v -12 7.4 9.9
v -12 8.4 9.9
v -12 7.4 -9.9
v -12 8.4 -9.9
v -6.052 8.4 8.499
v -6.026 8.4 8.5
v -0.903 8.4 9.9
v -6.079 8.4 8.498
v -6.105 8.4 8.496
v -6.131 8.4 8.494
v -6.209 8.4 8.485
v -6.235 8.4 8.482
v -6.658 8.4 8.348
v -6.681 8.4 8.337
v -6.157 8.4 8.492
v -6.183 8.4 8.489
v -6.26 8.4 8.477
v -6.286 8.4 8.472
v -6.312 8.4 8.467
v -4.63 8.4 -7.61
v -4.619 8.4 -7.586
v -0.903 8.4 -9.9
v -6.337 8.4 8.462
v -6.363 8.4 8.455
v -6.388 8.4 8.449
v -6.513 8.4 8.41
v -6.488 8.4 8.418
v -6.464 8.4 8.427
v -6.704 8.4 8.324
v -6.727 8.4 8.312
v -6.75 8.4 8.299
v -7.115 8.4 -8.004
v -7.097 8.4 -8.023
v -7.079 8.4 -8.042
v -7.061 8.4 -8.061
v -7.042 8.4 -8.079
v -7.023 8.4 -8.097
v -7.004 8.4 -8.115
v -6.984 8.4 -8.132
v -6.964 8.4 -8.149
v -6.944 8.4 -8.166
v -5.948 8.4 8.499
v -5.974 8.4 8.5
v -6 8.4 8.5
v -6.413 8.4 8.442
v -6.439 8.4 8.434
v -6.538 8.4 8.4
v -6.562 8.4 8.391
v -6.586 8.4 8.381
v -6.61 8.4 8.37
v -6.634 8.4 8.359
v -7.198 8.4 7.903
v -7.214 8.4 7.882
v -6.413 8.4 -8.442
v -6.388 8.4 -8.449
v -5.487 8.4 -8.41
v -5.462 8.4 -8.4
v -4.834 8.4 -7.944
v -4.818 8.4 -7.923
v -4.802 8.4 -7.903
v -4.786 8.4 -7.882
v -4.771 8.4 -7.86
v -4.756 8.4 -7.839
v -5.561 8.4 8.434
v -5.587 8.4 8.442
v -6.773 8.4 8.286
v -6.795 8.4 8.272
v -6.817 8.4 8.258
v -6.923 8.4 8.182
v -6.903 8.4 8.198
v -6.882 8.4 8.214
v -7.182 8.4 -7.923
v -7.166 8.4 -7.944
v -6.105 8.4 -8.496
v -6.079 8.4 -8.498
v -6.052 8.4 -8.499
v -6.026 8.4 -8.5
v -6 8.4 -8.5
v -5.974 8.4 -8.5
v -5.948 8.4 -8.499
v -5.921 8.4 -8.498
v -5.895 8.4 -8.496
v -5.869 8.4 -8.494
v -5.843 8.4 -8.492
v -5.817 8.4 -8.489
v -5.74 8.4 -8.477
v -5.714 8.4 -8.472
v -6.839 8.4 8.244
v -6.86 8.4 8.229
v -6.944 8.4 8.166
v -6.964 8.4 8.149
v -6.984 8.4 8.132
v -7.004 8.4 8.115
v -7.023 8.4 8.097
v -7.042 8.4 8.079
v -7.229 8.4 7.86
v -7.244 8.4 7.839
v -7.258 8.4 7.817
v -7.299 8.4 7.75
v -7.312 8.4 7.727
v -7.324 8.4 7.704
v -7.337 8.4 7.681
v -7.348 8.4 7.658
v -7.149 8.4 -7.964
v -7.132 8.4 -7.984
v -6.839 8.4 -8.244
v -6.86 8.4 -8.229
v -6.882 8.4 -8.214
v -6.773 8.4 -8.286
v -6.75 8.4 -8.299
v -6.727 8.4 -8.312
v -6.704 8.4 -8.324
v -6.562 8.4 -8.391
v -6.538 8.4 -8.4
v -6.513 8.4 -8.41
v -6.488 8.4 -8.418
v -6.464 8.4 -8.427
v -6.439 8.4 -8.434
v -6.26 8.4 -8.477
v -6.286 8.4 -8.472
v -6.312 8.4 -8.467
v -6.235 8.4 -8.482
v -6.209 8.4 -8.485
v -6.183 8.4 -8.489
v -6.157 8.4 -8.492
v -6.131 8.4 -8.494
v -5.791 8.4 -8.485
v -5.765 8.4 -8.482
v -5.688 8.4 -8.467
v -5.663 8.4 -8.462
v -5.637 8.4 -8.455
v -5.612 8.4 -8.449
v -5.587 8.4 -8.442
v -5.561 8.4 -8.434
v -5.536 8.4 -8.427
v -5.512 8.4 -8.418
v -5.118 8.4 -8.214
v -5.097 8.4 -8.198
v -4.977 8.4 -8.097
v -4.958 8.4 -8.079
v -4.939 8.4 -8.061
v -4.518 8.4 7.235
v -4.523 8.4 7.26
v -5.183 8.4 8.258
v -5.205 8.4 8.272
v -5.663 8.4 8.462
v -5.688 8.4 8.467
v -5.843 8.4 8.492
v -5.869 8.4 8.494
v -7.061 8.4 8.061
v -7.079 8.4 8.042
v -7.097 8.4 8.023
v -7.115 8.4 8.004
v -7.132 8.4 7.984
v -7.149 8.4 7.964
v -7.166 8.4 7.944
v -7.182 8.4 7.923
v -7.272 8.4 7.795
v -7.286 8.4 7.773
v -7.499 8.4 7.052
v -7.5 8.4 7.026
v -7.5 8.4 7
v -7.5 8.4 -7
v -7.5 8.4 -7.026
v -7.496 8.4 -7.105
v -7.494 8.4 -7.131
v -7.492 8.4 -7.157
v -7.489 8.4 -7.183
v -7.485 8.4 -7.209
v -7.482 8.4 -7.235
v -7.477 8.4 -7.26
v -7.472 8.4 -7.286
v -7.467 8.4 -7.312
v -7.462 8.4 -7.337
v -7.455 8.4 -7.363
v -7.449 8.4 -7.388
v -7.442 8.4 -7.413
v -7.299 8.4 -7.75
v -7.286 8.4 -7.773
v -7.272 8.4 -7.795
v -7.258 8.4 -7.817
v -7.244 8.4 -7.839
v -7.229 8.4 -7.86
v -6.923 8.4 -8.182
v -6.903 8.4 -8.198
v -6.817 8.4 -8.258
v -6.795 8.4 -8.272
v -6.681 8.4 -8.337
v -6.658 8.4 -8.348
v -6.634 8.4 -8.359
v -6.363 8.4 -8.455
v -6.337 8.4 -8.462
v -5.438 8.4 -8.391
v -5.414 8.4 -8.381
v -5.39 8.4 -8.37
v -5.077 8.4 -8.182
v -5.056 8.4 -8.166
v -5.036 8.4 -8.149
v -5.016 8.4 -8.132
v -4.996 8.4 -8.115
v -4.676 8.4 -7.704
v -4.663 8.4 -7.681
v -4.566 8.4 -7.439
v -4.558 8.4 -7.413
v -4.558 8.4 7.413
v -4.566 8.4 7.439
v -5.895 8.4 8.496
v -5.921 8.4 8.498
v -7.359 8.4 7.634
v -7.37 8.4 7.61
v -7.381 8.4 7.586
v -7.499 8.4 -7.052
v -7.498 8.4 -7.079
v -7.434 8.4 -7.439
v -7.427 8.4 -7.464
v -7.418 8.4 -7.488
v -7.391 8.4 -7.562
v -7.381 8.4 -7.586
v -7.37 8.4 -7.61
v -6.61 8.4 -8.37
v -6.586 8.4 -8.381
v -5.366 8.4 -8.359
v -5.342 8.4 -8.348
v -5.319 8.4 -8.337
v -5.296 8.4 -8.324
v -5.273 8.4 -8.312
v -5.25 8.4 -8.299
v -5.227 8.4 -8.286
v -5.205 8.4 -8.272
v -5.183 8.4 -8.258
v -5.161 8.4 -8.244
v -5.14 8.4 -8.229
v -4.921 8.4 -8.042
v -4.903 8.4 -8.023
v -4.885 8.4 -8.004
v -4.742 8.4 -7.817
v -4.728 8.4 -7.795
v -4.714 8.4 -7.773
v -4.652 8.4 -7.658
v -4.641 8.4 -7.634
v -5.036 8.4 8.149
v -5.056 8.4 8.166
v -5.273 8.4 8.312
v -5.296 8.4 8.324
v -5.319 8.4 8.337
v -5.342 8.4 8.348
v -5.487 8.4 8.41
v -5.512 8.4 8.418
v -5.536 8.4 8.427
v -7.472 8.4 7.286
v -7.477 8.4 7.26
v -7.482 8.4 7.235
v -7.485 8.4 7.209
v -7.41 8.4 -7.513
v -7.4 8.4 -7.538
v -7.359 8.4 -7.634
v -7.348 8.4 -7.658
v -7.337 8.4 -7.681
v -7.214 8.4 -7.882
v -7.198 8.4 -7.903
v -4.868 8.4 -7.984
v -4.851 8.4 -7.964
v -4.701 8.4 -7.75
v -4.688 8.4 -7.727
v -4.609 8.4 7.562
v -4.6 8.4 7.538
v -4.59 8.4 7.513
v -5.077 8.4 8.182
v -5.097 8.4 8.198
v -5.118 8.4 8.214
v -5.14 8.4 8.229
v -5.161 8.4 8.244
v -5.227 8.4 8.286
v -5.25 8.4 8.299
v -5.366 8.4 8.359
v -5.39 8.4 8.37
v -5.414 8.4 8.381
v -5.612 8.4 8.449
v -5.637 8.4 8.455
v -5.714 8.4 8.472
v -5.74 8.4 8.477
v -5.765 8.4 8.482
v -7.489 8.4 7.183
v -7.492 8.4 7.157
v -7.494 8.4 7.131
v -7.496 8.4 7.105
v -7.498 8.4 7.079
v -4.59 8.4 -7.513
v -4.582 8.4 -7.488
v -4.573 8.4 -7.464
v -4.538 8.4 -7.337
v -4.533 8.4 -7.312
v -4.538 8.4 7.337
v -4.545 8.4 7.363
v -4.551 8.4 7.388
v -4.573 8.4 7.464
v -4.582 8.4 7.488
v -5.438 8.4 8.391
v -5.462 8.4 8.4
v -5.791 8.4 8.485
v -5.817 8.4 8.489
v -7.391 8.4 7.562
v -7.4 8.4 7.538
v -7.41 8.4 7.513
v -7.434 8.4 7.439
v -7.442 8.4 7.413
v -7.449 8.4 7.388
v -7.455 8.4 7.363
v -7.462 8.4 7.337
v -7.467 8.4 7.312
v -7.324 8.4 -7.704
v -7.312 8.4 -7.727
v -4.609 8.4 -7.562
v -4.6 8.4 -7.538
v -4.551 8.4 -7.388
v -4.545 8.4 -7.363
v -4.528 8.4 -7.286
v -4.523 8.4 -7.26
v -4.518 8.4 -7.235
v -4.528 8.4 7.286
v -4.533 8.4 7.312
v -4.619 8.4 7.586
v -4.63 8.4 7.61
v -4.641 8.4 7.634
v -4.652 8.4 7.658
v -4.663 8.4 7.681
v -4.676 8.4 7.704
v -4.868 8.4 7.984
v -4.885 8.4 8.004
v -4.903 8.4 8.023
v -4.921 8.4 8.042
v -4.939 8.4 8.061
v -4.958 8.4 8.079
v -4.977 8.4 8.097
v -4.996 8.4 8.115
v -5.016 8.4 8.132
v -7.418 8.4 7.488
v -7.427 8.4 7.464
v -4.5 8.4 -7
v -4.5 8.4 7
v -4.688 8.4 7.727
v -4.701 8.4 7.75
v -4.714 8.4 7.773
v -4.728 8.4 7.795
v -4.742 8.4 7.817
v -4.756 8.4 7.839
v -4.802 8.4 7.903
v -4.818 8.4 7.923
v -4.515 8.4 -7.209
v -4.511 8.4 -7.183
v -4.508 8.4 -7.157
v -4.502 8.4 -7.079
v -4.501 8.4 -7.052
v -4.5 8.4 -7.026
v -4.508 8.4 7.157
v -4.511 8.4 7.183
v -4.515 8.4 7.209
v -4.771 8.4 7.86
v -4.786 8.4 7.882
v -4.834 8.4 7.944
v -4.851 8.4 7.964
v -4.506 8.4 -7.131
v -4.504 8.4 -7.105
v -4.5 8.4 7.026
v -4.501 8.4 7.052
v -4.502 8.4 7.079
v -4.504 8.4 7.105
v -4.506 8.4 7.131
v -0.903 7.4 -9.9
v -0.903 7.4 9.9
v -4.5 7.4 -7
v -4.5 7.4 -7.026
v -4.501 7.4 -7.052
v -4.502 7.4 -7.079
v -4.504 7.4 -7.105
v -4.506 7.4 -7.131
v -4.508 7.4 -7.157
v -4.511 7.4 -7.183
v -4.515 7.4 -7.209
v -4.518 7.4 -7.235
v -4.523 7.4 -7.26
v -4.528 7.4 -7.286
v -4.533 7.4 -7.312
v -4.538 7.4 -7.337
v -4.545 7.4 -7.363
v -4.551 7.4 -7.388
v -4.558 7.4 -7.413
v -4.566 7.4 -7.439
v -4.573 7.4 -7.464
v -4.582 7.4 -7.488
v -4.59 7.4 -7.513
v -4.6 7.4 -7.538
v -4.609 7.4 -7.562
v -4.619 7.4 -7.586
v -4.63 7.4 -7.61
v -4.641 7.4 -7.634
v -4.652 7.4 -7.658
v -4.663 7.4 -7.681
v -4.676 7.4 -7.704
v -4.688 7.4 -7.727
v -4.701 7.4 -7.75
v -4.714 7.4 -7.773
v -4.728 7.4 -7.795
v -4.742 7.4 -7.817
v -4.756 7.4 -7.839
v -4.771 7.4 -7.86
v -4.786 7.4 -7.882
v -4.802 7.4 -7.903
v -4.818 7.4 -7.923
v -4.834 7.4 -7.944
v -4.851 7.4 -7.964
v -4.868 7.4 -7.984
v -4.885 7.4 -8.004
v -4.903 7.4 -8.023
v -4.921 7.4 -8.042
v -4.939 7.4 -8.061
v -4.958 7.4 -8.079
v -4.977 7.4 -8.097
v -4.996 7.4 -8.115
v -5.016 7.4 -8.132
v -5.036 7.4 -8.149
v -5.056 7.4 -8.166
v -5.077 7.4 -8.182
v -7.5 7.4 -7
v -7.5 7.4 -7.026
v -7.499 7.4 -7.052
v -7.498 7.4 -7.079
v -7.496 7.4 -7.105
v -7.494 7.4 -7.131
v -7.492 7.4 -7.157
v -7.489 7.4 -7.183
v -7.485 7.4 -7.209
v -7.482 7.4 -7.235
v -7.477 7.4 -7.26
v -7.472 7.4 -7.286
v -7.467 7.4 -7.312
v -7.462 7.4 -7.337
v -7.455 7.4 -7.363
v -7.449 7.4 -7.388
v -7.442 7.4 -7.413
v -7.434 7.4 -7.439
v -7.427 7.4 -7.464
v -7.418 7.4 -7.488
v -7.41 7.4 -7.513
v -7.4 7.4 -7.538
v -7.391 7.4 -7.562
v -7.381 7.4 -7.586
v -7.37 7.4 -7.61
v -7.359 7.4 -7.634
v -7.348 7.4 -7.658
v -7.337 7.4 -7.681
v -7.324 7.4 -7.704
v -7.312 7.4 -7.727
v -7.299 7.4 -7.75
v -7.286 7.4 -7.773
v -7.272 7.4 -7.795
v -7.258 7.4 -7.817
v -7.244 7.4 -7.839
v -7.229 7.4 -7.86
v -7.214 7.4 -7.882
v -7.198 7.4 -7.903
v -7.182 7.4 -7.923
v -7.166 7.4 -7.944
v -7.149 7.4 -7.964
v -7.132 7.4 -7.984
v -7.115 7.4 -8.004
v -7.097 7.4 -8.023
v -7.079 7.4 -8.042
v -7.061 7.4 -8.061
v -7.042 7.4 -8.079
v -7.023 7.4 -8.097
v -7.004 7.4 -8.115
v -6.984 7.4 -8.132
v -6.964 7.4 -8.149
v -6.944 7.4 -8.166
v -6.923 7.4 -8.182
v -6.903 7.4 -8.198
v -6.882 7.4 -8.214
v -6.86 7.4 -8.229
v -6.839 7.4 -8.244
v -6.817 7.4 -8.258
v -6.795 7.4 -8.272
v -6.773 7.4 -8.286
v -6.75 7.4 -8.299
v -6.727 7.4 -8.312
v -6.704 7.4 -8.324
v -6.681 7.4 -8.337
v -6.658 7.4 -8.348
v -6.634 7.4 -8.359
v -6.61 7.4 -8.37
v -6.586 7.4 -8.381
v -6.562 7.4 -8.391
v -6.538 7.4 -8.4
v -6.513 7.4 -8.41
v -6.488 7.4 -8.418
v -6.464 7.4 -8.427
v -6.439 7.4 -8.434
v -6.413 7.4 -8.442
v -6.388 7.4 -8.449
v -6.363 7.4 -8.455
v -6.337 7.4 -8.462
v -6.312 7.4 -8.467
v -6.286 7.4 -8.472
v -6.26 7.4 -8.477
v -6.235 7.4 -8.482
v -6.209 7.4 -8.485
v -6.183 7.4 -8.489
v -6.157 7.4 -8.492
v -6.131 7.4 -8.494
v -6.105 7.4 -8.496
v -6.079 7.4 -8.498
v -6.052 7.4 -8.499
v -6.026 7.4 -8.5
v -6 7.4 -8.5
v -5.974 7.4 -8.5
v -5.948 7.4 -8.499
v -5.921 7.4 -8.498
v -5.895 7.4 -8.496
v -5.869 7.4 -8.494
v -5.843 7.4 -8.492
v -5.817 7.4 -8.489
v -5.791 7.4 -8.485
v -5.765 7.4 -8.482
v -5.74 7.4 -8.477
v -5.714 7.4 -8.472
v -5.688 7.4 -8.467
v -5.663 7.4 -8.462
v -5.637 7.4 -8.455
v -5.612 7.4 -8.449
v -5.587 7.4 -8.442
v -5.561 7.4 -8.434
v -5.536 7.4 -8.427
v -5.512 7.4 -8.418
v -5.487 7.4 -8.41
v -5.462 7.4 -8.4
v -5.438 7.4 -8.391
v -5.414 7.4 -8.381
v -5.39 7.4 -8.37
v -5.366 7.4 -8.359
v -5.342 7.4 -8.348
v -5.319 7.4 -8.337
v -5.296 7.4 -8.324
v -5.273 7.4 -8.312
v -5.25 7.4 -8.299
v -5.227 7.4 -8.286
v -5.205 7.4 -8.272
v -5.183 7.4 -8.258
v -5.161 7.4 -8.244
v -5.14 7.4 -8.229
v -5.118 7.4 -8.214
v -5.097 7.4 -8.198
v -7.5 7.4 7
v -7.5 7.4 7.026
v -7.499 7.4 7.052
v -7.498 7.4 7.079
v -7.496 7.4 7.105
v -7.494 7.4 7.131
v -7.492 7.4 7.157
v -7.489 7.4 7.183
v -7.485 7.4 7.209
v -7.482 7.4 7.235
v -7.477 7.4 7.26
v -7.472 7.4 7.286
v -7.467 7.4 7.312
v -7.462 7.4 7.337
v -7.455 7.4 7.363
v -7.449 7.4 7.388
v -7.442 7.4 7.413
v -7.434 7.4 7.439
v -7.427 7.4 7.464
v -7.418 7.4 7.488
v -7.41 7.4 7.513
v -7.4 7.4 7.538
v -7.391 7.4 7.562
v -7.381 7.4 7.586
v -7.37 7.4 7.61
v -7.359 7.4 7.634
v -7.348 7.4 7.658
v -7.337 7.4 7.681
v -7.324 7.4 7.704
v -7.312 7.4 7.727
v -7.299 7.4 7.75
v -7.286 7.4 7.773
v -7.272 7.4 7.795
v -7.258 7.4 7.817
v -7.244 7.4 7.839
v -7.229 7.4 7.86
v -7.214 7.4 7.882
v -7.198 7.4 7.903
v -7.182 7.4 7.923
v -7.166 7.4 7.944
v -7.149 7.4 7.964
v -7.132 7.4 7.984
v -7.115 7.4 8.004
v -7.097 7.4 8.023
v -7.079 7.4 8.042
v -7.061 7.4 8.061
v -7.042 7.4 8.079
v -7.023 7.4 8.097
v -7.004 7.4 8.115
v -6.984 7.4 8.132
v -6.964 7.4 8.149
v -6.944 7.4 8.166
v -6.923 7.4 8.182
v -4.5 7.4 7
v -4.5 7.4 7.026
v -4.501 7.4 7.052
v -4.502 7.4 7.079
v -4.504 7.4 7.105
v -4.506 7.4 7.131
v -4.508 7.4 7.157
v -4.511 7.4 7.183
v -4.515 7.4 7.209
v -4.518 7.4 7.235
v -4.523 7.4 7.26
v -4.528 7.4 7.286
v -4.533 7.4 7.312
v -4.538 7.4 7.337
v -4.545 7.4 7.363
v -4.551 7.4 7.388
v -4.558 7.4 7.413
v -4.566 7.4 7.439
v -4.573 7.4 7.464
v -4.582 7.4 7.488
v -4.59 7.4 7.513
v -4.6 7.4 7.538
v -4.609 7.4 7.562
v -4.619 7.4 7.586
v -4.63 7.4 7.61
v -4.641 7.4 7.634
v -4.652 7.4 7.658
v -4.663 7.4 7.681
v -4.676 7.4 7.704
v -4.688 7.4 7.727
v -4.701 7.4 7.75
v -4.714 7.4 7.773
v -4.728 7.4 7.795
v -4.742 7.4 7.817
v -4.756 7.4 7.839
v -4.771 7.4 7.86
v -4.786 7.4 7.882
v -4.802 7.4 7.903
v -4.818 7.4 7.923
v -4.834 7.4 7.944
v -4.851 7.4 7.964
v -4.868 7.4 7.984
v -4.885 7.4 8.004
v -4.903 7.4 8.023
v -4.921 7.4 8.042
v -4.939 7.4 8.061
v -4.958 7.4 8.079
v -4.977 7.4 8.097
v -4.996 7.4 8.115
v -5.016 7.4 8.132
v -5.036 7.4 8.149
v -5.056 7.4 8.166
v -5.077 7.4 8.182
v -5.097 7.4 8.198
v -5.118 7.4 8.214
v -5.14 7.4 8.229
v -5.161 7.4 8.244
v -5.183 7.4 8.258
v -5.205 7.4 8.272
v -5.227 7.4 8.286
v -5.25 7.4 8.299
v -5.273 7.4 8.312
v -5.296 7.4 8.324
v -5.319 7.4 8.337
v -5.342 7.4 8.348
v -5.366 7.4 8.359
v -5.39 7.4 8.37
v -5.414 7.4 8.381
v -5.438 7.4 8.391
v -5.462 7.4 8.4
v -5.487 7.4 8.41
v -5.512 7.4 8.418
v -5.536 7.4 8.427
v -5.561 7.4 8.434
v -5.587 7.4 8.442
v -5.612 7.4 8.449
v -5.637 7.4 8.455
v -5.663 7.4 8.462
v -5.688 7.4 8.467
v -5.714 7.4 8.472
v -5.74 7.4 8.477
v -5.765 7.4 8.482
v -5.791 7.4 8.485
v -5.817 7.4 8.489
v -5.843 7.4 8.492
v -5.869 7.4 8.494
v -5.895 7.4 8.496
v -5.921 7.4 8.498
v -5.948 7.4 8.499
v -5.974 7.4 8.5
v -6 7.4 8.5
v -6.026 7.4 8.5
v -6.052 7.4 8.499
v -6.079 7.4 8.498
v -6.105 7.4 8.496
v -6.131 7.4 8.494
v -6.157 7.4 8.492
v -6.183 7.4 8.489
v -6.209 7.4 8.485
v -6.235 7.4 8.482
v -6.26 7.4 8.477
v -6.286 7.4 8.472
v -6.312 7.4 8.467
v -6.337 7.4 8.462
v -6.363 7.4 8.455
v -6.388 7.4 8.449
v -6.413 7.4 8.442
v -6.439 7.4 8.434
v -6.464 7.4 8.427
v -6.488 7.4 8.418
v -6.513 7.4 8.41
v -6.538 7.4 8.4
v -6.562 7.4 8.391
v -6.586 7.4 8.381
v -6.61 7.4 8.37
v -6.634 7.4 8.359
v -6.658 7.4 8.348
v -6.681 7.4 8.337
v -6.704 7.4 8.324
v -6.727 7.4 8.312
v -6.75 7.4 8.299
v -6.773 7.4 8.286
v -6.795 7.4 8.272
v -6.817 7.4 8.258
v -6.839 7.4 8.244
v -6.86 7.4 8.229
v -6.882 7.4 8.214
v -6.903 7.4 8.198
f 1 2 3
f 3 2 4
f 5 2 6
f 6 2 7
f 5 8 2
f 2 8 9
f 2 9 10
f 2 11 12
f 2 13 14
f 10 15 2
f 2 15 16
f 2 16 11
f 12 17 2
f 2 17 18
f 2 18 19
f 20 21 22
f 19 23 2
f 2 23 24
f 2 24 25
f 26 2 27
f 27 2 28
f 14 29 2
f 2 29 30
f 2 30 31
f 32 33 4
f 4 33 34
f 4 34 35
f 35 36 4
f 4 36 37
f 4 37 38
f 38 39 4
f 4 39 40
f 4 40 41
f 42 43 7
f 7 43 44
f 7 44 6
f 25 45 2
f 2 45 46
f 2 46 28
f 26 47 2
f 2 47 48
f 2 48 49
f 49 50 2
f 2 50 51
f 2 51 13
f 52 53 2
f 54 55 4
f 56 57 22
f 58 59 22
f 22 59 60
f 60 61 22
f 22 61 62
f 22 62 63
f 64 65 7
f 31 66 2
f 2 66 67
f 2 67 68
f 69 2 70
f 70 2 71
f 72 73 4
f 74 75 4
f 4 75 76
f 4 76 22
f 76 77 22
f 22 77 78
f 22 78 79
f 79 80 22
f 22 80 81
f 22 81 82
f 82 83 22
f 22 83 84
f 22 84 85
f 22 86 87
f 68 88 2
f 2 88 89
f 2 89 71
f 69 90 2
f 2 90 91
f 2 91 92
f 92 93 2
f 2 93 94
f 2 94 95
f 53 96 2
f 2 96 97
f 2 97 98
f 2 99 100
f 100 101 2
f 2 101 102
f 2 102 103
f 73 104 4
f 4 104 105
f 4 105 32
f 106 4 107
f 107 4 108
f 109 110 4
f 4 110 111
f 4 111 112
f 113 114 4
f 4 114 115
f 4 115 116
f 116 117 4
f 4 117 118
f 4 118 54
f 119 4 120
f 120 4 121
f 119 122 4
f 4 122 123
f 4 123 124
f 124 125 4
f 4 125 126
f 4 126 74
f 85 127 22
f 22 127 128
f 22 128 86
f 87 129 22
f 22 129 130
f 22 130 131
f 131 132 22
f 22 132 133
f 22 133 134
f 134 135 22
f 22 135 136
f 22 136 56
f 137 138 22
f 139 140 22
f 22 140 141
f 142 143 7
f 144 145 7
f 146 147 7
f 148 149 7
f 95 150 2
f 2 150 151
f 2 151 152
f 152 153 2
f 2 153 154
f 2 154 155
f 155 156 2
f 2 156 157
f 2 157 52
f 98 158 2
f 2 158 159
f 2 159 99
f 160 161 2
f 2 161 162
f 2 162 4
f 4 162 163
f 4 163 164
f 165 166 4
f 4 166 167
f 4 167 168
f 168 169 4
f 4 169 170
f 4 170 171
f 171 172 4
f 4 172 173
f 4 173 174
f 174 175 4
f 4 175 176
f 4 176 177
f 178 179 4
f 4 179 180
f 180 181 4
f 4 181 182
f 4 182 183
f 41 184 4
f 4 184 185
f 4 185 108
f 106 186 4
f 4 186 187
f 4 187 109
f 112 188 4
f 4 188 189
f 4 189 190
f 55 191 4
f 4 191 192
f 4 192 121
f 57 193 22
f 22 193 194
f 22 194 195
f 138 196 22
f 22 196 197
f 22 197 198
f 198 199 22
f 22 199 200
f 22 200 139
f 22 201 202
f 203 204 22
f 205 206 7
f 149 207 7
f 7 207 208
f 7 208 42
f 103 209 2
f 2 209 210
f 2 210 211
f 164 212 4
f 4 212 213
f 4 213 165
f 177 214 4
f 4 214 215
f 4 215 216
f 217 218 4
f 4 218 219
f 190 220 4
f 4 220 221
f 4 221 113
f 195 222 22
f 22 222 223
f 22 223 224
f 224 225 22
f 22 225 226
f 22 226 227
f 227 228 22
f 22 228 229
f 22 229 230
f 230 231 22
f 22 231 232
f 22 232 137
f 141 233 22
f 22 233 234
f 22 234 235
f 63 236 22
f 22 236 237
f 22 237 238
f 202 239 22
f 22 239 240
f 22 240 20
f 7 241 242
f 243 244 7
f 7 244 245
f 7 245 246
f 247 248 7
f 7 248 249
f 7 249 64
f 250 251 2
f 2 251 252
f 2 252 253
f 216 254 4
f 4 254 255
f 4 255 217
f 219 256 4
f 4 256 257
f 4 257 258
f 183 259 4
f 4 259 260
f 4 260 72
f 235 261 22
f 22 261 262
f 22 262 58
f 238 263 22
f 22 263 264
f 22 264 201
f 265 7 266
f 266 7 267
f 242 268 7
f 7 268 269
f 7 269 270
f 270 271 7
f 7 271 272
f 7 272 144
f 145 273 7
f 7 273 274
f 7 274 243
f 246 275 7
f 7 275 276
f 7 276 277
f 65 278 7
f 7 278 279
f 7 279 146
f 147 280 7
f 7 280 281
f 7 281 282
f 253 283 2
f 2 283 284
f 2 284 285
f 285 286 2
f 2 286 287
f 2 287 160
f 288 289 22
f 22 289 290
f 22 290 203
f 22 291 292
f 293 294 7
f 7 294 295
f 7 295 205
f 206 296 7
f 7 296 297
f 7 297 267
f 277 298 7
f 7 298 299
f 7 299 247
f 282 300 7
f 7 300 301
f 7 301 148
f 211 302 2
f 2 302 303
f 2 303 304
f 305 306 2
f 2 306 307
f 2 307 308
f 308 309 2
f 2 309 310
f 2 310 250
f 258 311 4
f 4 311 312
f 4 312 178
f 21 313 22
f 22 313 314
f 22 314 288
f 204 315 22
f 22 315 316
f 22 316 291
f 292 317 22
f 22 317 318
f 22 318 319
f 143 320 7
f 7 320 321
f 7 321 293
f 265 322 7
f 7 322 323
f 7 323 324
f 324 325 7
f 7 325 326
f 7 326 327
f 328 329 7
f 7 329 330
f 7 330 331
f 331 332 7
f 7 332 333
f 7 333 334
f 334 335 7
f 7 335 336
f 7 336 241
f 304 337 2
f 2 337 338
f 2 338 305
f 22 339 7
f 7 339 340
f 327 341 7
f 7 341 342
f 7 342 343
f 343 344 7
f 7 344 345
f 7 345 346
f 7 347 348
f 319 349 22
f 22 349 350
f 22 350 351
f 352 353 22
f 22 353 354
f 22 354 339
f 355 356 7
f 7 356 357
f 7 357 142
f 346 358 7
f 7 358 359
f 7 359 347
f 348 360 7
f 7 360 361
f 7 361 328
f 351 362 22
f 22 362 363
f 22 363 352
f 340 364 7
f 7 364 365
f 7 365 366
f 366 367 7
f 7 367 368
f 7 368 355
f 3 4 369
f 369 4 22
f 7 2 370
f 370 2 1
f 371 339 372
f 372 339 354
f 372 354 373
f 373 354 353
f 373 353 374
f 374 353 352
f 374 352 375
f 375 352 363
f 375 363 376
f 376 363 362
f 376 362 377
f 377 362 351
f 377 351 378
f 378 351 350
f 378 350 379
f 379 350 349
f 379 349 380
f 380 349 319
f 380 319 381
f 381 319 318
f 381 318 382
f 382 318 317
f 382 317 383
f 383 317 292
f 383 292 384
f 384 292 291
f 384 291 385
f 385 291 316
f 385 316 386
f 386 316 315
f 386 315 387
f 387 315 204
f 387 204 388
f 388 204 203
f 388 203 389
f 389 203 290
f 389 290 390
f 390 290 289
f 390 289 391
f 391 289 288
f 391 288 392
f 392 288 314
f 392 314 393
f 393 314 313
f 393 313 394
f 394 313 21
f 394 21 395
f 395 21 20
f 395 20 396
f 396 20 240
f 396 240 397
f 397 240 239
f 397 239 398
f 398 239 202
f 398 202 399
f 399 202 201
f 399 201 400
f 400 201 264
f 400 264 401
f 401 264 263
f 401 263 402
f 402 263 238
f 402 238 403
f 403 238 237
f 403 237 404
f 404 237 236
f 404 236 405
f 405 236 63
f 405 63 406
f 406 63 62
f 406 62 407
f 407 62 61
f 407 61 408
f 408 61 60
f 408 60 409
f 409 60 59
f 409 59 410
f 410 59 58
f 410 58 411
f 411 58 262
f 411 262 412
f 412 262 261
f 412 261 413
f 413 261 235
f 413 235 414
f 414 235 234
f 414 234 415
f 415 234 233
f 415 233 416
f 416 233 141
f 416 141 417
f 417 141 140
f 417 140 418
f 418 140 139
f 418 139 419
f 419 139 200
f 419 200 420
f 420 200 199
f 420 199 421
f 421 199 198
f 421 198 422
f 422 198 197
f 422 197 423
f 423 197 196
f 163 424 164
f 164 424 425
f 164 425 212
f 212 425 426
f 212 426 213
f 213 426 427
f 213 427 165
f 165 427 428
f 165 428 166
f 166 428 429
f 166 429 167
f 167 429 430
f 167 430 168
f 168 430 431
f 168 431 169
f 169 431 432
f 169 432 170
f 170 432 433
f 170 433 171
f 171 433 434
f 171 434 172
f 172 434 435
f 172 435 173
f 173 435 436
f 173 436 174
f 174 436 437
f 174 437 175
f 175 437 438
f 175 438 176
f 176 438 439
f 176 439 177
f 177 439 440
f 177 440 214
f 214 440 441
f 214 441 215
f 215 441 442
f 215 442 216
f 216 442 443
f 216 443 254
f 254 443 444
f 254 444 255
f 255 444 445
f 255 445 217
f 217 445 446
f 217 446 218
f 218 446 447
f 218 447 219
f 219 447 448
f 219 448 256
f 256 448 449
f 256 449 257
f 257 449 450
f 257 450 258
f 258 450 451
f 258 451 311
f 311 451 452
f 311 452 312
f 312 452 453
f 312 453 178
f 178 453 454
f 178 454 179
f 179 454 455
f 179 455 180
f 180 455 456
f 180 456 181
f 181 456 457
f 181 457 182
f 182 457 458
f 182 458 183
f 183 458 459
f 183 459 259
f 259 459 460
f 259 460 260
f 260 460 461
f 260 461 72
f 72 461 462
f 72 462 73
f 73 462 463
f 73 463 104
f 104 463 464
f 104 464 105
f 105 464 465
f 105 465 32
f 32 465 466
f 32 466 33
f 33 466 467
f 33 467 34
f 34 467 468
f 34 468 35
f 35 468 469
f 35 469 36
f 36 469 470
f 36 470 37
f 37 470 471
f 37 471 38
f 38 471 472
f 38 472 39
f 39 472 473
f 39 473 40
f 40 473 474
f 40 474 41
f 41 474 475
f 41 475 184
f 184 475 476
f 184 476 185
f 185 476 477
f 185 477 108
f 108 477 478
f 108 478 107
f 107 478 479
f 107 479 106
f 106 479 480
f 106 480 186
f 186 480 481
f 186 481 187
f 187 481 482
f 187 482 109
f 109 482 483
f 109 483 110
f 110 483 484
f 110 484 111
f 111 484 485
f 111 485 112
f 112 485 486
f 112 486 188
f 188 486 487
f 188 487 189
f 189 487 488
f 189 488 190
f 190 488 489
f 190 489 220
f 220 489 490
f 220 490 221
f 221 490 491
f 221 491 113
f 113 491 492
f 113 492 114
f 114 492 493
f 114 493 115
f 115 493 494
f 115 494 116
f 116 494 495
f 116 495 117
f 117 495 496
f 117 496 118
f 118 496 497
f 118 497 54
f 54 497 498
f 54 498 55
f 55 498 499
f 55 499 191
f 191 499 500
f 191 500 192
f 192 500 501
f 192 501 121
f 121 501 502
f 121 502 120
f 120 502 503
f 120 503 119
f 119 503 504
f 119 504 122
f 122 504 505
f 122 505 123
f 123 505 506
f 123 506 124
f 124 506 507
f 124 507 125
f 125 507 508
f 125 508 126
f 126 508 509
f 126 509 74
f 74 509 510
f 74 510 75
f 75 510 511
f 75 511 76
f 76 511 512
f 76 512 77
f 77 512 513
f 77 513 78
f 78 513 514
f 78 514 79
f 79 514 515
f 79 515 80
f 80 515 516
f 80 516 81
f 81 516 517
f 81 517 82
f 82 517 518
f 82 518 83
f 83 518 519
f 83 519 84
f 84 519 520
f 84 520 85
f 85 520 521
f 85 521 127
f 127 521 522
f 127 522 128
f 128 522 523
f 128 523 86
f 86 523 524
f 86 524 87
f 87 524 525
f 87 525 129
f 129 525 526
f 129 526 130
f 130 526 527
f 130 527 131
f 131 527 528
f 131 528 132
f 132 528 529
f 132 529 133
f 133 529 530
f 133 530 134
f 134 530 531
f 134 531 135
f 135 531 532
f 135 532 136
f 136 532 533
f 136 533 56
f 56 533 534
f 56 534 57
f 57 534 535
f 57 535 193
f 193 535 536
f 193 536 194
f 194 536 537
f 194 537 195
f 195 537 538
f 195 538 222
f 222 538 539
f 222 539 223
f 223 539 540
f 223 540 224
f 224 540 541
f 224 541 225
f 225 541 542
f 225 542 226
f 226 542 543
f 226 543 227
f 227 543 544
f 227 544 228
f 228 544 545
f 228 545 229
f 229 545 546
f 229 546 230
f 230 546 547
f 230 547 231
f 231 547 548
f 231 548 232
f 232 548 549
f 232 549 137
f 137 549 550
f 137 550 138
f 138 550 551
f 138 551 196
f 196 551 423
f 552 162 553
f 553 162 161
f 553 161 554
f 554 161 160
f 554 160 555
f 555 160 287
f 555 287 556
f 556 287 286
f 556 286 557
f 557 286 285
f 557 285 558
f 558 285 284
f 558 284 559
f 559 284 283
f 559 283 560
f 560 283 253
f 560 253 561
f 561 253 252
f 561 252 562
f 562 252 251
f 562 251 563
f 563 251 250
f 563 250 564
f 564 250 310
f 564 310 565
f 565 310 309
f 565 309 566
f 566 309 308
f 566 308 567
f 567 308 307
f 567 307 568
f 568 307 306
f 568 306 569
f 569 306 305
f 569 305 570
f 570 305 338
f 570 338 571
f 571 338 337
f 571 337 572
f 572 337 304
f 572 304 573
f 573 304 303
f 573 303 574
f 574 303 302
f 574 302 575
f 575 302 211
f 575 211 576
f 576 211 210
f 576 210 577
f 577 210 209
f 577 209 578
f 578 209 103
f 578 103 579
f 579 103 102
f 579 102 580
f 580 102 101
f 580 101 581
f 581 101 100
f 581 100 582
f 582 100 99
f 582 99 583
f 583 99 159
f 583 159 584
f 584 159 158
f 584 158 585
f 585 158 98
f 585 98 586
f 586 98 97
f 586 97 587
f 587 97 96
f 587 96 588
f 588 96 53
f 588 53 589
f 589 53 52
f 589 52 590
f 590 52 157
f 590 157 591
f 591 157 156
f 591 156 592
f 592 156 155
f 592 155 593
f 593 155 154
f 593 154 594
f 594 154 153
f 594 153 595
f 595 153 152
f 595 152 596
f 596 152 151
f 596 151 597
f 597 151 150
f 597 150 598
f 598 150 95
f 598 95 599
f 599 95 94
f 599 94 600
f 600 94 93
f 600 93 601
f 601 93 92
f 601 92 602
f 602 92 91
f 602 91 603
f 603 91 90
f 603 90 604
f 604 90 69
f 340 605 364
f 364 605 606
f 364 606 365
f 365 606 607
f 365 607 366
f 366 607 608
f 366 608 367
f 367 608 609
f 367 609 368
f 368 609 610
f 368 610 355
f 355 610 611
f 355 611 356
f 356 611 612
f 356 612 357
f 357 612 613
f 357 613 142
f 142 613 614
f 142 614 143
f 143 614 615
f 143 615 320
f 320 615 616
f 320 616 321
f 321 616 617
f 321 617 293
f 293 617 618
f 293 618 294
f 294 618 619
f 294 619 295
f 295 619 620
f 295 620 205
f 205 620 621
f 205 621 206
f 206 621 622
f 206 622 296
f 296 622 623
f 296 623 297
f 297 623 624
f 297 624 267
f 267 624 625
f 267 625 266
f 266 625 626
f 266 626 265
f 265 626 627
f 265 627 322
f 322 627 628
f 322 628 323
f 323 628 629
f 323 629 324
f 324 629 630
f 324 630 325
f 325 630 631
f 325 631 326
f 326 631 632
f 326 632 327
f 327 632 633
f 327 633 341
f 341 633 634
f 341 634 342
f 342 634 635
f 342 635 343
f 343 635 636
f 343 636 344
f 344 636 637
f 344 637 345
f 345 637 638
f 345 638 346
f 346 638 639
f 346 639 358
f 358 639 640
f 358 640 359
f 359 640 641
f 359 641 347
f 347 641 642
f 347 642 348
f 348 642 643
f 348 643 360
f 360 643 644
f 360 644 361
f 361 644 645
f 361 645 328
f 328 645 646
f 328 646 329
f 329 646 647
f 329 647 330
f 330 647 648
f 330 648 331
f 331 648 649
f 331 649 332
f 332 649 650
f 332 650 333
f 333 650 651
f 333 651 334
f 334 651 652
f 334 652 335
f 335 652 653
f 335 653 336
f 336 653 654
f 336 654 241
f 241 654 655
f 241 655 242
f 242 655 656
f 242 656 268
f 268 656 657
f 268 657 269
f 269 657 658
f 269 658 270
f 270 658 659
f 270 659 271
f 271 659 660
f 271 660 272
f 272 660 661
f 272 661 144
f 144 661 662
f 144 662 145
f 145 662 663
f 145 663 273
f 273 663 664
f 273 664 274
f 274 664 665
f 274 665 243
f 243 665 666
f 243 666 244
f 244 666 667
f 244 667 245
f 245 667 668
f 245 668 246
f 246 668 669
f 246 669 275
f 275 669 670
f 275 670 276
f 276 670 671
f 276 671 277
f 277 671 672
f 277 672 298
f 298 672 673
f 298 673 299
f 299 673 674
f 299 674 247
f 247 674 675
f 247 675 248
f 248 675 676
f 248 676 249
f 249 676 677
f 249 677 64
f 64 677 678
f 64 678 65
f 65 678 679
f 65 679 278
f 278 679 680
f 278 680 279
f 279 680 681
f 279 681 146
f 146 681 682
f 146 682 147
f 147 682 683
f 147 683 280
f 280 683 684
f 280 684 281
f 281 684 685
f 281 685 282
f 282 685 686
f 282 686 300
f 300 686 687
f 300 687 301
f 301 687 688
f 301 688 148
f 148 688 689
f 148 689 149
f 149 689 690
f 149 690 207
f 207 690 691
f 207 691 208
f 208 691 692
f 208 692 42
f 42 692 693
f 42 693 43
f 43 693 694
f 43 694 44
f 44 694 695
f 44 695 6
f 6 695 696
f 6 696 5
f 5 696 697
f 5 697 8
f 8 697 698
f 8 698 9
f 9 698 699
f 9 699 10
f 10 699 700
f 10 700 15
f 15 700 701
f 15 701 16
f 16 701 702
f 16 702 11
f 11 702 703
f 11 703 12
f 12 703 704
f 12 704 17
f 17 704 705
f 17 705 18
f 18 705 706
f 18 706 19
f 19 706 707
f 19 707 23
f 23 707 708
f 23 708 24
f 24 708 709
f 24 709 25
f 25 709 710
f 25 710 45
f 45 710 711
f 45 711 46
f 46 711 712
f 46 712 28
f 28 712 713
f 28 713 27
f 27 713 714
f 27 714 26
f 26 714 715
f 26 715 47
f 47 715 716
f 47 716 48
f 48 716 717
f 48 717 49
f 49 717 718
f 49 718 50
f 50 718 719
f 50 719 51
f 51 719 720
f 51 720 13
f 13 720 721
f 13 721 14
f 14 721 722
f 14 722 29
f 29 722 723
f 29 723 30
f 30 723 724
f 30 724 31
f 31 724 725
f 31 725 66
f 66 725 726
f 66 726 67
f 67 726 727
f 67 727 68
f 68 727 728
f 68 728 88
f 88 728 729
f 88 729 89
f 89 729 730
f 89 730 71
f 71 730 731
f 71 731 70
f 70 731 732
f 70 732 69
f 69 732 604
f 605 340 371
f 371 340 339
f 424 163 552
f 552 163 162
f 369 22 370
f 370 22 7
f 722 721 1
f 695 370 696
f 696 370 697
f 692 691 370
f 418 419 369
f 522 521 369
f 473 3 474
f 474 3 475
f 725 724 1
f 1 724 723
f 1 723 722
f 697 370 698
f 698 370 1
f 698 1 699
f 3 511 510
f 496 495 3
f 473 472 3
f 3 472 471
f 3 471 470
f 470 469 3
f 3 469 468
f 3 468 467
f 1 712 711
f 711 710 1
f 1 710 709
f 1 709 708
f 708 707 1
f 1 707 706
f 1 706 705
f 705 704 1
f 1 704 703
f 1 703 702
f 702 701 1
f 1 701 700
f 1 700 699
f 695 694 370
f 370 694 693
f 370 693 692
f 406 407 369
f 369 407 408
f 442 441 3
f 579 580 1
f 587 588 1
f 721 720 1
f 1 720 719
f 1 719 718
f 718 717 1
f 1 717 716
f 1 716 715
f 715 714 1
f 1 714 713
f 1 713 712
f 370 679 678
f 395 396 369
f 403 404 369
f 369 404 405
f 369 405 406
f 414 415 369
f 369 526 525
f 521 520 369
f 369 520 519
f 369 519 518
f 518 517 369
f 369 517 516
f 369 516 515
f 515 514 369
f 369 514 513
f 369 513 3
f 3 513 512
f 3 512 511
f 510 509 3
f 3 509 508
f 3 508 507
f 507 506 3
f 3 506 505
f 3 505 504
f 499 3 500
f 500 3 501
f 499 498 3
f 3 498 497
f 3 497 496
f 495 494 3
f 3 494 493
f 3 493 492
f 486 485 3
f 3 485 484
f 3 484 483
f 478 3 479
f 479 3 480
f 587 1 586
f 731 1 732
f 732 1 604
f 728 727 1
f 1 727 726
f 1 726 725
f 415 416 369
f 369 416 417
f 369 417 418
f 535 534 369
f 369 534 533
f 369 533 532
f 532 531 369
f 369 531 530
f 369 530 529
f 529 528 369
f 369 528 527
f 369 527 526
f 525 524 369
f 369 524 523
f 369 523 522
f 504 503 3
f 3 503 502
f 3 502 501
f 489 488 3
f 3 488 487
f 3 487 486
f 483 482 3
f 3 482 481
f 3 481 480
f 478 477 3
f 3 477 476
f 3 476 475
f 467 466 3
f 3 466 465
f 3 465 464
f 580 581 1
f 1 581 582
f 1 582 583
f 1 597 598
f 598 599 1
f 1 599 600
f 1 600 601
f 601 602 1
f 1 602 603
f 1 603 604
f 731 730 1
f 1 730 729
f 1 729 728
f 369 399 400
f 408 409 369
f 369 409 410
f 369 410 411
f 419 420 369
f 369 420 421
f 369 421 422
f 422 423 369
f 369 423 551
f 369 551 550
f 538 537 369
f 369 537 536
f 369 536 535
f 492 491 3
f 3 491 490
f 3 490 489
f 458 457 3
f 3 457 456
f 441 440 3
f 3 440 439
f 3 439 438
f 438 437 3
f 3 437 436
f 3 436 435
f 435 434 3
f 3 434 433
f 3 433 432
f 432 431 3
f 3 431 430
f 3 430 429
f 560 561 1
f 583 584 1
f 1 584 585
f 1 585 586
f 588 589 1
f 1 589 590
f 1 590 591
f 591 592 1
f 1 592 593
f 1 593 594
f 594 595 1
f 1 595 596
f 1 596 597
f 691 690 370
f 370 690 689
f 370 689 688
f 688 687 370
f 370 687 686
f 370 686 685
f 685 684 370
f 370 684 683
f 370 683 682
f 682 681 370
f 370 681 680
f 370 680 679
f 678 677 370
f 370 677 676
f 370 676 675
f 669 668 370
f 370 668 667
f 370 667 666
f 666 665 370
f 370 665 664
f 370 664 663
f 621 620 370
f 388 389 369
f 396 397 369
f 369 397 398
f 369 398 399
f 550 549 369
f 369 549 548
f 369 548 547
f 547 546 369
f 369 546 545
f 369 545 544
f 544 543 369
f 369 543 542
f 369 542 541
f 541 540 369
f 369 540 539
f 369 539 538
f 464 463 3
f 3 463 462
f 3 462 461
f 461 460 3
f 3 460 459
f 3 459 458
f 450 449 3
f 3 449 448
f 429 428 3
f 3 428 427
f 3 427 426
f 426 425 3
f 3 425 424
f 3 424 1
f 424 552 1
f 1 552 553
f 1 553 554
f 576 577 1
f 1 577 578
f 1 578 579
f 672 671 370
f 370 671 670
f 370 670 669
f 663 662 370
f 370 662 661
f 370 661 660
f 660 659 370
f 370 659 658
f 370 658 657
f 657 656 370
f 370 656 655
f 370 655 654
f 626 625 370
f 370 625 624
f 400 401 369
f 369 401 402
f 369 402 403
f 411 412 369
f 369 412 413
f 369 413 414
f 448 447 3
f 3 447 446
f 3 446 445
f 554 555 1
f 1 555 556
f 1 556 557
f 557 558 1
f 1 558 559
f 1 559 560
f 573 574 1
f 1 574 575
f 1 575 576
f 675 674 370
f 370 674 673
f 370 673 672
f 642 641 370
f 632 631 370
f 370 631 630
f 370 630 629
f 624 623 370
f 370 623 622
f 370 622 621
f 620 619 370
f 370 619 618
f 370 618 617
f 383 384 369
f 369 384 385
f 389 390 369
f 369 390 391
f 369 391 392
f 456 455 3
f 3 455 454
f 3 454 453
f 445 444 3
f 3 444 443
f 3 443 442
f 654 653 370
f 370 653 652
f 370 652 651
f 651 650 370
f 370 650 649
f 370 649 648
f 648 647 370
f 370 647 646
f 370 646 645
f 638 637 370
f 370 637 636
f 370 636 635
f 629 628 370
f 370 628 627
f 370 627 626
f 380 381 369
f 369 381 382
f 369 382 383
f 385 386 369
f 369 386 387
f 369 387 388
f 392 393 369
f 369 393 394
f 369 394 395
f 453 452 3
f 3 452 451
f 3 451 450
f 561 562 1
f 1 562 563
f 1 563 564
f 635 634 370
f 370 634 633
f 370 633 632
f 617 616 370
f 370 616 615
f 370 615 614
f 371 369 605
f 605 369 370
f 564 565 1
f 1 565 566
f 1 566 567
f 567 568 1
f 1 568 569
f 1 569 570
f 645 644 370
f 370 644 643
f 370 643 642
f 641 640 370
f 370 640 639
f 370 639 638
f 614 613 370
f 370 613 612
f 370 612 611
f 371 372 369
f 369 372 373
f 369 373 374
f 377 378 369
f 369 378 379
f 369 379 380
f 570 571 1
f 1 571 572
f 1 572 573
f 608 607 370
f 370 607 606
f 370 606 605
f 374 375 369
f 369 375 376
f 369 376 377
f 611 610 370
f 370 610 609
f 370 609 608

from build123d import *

# Parameters (mm, degrees)
SKETCH1_W               = 13.8
SKETCH1_H               = 8.8
BOSS_EXTRUDE1_DEPTH     = 3
SKETCH2_W               = 2
SKETCH2_H               = 35
BOSS_EXTRUDE2_DEPTH     = 3
SKETCH3_W               = 1.2
SKETCH3_H               = 6
BOSS_EXTRUDE3_DEPTH     = 7
FILLET3_R               = 10
SKETCH5_W               = 15
SKETCH5_H               = 13.8
BOSS_EXTRUDE4_DEPTH     = 4
SKETCH6_R               = 1.5
CUT_EXTRUDE4_DEPTH      = 38.968539608
BOSS_EXTRUDE5_DEPTH     = 2
CHAMFER2_SIZE           = 3
BOSS_EXTRUDE7_DEPTH     = 1.2
SKETCH12_W              = 15
SKETCH12_H              = 4
BOSS_EXTRUDE8_DEPTH     = 3
SKETCH13_W              = 15
SKETCH13_H              = 4
BOSS_EXTRUDE9_DEPTH     = 3
CUT_EXTRUDE7_DEPTH      = 43.28486727
CUT_EXTRUDE7_DEPTH_BACK = 43.28486727
CUT_EXTRUDE8_DEPTH      = 43.28486727
CUT_EXTRUDE8_DEPTH_BACK = 43.28486727
SKETCH15_W              = 0.807911756
SKETCH15_H              = 0.64
CUT_EXTRUDE9_DEPTH      = 41.244591358
CUT_EXTRUDE9_DEPTH_BACK = 41.244591358
SKETCH16_W              = 0.64
SKETCH16_H              = 0.6
CHAMFER3_SIZE           = 1
SKETCH18_W              = 20.701942652
SKETCH18_H              = 41.728044518
CUT_EXTRUDE10_DEPTH     = 36
SKETCH19_W              = 11.097134513
SKETCH19_H              = 20.928514419
CUT_EXTRUDE11_DEPTH     = 3


# Some blends are built 0.0001 mm under size
with BuildPart() as part:
    # Sketch1 → Boss-Extrude1 (new body)
    with BuildSketch(Plane(origin=(0, 0, 0), x_dir=(0, 0, -1), z_dir=(1, 0, 0))):
        Rectangle(SKETCH1_W, SKETCH1_H)
    extrude(amount=BOSS_EXTRUDE1_DEPTH)

    # Sketch2 → Boss-Extrude2 (add)
    with BuildSketch(Plane(origin=(3, 0, 0), x_dir=(0, 0, -1), z_dir=(1, 0, 0))):
        with Locations((0, -13.1)):
            Rectangle(SKETCH2_W, SKETCH2_H)
    extrude(amount=BOSS_EXTRUDE2_DEPTH)

    # Sketch3 → Boss-Extrude3 (add)
    with BuildSketch(Plane(origin=(6, 0, 0), x_dir=(0, 0, -1), z_dir=(1, 0, 0))):
        with Locations((0, -27.6)):
            Rectangle(SKETCH3_W, SKETCH3_H)
    extrude(amount=BOSS_EXTRUDE3_DEPTH)

    # Fillet3
    # the kernel refuses this fillet: 10 mm, written as the material it adds along each edge
    with BuildSketch(Plane(origin=(3, -4.4, 1), x_dir=(-1, 0, 0), z_dir=(0, 0, -1))) as fillet3_piece_1:
        with BuildLine():
            CenterArc((10, -7.141428429), FILLET3_R, 134.427004001, 45.572995999)
            Line((0, -7.141428429), (0, 0))
            Line((0, 0), (3, 0))
        make_face()
    extrude(amount=2)

    # Sketch5 → Boss-Extrude4 (add)
    with BuildSketch(Plane(origin=(0, 4.4, 0), x_dir=(1, 0, 0), z_dir=(0, 1, 0))):
        with Locations((-4.5, 0)):
            Rectangle(SKETCH5_W, SKETCH5_H)
    extrude(amount=BOSS_EXTRUDE4_DEPTH)

    # Sketch6 → Cut-Extrude4 (cut, through all)
    with BuildSketch(Plane.XZ.offset(-4.4)):
        with Locations(Location((-6, 3, 0), (0, 0, 270))):
            Circle(SKETCH6_R)
        with Locations(Location((-6, -3, 0), (0, 0, 270))):
            Circle(SKETCH6_R)
    extrude(amount=-CUT_EXTRUDE4_DEPTH, mode=Mode.SUBTRACT)

    # Sketch8 → Boss-Extrude5 (add)
    with BuildSketch(Plane(origin=(0, 0, -1), x_dir=(-1, 0, 0), z_dir=(0, 0, -1))):
        Polygon((-3, -18.758153574), (0, -4.4), (-3, -4.4), align=None)
    extrude(amount=-BOSS_EXTRUDE5_DEPTH)

    # Chamfer2
    chamfer2_edges = [part.edges().sort_by_distance(p)[0] for p in [
        (3, 4.4, 0),
    ]]
    chamfer(chamfer2_edges, length=CHAMFER2_SIZE - 0.0001)  # a hair under: the kernel refuses the full size

    # Sketch11 → Boss-Extrude7 (add)
    with BuildSketch(Plane(origin=(0, 0, -0.6), x_dir=(-1, 0, 0), z_dir=(0, 0, -1))):
        Polygon((-6, -24.6), (-13, -24.6), (-6, 1.742521041), align=None)
    extrude(amount=-BOSS_EXTRUDE7_DEPTH)

    # Sketch12 → Boss-Extrude8 (add)
    with BuildSketch(Plane(origin=(0, 0, -6.9), x_dir=(-1, 0, 0), z_dir=(0, 0, -1))):
        with Locations((4.5, 6.4)):
            Rectangle(SKETCH12_W, SKETCH12_H)
    extrude(amount=BOSS_EXTRUDE8_DEPTH)

    # Sketch13 → Boss-Extrude9 (add)
    with BuildSketch(Plane.XY.offset(6.9)):
        with Locations((-4.5, 6.4)):
            Rectangle(SKETCH13_W, SKETCH13_H)
    extrude(amount=BOSS_EXTRUDE9_DEPTH)

    # Sketch14 → Cut-Extrude7 (cut, two sides: drawn at the far end of the back side and taken through both)
    with BuildSketch(Plane(origin=(0, 8.4, 0), x_dir=(1, 0, 0), z_dir=(0, 1, 0)).offset(-CUT_EXTRUDE7_DEPTH_BACK)):
        with BuildLine():
            Line((-7.5, 7), (-7.5, -7))
            ThreePointArc((-7.5, -7), (-6, -8.5), (-4.5, -7))
            Line((-4.5, -7), (-4.5, 7))
            ThreePointArc((-4.5, 7), (-6, 8.5), (-7.5, 7))
        make_face()
    extrude(amount=CUT_EXTRUDE7_DEPTH + CUT_EXTRUDE7_DEPTH_BACK, mode=Mode.SUBTRACT)

    # Sketch15 → Cut-Extrude8 (cut, two sides: drawn at the far end of the back side and taken through both)
    with BuildSketch(Plane.XZ.offset(30.6).offset(-CUT_EXTRUDE8_DEPTH_BACK)):
        with Locations((12.596044122, 0)):
            Rectangle(SKETCH15_W, SKETCH15_H)
    extrude(amount=CUT_EXTRUDE8_DEPTH + CUT_EXTRUDE8_DEPTH_BACK, mode=Mode.SUBTRACT)

    # Sketch16 → Cut-Extrude9 (cut, two sides: drawn at the far end of the back side and taken through both)
    with BuildSketch(Plane(origin=(12.192088244, 0, 0), x_dir=(0, 0, -1), z_dir=(1, 0, 0)).offset(-CUT_EXTRUDE9_DEPTH_BACK)):
        with Locations((0, -30.3)):
            Rectangle(SKETCH16_W, SKETCH16_H)
    extrude(amount=CUT_EXTRUDE9_DEPTH + CUT_EXTRUDE9_DEPTH_BACK, mode=Mode.SUBTRACT)

    # Chamfer3
    chamfer3_edges = [part.edges().sort_by_distance(p)[0] for p in [
        (12.192088244, -30, 0),
    ]]
    chamfer(chamfer3_edges, length=CHAMFER3_SIZE)

    # Sketch18 → Cut-Extrude10 (cut)
    with BuildSketch(Plane.XY.offset(9.9)):
        with Locations((9.448105839, -12.464022259)):
            Rectangle(SKETCH18_W, SKETCH18_H)
    extrude(amount=-CUT_EXTRUDE10_DEPTH, mode=Mode.SUBTRACT)

    # Sketch19 → Cut-Extrude11 (cut)
    with BuildSketch(Plane.XZ.offset(-4.4)):
        with Locations((-6.451432743, 0.56425721)):
            Rectangle(SKETCH19_W, SKETCH19_H)
    extrude(amount=-CUT_EXTRUDE11_DEPTH, mode=Mode.SUBTRACT)


solid = part.part
